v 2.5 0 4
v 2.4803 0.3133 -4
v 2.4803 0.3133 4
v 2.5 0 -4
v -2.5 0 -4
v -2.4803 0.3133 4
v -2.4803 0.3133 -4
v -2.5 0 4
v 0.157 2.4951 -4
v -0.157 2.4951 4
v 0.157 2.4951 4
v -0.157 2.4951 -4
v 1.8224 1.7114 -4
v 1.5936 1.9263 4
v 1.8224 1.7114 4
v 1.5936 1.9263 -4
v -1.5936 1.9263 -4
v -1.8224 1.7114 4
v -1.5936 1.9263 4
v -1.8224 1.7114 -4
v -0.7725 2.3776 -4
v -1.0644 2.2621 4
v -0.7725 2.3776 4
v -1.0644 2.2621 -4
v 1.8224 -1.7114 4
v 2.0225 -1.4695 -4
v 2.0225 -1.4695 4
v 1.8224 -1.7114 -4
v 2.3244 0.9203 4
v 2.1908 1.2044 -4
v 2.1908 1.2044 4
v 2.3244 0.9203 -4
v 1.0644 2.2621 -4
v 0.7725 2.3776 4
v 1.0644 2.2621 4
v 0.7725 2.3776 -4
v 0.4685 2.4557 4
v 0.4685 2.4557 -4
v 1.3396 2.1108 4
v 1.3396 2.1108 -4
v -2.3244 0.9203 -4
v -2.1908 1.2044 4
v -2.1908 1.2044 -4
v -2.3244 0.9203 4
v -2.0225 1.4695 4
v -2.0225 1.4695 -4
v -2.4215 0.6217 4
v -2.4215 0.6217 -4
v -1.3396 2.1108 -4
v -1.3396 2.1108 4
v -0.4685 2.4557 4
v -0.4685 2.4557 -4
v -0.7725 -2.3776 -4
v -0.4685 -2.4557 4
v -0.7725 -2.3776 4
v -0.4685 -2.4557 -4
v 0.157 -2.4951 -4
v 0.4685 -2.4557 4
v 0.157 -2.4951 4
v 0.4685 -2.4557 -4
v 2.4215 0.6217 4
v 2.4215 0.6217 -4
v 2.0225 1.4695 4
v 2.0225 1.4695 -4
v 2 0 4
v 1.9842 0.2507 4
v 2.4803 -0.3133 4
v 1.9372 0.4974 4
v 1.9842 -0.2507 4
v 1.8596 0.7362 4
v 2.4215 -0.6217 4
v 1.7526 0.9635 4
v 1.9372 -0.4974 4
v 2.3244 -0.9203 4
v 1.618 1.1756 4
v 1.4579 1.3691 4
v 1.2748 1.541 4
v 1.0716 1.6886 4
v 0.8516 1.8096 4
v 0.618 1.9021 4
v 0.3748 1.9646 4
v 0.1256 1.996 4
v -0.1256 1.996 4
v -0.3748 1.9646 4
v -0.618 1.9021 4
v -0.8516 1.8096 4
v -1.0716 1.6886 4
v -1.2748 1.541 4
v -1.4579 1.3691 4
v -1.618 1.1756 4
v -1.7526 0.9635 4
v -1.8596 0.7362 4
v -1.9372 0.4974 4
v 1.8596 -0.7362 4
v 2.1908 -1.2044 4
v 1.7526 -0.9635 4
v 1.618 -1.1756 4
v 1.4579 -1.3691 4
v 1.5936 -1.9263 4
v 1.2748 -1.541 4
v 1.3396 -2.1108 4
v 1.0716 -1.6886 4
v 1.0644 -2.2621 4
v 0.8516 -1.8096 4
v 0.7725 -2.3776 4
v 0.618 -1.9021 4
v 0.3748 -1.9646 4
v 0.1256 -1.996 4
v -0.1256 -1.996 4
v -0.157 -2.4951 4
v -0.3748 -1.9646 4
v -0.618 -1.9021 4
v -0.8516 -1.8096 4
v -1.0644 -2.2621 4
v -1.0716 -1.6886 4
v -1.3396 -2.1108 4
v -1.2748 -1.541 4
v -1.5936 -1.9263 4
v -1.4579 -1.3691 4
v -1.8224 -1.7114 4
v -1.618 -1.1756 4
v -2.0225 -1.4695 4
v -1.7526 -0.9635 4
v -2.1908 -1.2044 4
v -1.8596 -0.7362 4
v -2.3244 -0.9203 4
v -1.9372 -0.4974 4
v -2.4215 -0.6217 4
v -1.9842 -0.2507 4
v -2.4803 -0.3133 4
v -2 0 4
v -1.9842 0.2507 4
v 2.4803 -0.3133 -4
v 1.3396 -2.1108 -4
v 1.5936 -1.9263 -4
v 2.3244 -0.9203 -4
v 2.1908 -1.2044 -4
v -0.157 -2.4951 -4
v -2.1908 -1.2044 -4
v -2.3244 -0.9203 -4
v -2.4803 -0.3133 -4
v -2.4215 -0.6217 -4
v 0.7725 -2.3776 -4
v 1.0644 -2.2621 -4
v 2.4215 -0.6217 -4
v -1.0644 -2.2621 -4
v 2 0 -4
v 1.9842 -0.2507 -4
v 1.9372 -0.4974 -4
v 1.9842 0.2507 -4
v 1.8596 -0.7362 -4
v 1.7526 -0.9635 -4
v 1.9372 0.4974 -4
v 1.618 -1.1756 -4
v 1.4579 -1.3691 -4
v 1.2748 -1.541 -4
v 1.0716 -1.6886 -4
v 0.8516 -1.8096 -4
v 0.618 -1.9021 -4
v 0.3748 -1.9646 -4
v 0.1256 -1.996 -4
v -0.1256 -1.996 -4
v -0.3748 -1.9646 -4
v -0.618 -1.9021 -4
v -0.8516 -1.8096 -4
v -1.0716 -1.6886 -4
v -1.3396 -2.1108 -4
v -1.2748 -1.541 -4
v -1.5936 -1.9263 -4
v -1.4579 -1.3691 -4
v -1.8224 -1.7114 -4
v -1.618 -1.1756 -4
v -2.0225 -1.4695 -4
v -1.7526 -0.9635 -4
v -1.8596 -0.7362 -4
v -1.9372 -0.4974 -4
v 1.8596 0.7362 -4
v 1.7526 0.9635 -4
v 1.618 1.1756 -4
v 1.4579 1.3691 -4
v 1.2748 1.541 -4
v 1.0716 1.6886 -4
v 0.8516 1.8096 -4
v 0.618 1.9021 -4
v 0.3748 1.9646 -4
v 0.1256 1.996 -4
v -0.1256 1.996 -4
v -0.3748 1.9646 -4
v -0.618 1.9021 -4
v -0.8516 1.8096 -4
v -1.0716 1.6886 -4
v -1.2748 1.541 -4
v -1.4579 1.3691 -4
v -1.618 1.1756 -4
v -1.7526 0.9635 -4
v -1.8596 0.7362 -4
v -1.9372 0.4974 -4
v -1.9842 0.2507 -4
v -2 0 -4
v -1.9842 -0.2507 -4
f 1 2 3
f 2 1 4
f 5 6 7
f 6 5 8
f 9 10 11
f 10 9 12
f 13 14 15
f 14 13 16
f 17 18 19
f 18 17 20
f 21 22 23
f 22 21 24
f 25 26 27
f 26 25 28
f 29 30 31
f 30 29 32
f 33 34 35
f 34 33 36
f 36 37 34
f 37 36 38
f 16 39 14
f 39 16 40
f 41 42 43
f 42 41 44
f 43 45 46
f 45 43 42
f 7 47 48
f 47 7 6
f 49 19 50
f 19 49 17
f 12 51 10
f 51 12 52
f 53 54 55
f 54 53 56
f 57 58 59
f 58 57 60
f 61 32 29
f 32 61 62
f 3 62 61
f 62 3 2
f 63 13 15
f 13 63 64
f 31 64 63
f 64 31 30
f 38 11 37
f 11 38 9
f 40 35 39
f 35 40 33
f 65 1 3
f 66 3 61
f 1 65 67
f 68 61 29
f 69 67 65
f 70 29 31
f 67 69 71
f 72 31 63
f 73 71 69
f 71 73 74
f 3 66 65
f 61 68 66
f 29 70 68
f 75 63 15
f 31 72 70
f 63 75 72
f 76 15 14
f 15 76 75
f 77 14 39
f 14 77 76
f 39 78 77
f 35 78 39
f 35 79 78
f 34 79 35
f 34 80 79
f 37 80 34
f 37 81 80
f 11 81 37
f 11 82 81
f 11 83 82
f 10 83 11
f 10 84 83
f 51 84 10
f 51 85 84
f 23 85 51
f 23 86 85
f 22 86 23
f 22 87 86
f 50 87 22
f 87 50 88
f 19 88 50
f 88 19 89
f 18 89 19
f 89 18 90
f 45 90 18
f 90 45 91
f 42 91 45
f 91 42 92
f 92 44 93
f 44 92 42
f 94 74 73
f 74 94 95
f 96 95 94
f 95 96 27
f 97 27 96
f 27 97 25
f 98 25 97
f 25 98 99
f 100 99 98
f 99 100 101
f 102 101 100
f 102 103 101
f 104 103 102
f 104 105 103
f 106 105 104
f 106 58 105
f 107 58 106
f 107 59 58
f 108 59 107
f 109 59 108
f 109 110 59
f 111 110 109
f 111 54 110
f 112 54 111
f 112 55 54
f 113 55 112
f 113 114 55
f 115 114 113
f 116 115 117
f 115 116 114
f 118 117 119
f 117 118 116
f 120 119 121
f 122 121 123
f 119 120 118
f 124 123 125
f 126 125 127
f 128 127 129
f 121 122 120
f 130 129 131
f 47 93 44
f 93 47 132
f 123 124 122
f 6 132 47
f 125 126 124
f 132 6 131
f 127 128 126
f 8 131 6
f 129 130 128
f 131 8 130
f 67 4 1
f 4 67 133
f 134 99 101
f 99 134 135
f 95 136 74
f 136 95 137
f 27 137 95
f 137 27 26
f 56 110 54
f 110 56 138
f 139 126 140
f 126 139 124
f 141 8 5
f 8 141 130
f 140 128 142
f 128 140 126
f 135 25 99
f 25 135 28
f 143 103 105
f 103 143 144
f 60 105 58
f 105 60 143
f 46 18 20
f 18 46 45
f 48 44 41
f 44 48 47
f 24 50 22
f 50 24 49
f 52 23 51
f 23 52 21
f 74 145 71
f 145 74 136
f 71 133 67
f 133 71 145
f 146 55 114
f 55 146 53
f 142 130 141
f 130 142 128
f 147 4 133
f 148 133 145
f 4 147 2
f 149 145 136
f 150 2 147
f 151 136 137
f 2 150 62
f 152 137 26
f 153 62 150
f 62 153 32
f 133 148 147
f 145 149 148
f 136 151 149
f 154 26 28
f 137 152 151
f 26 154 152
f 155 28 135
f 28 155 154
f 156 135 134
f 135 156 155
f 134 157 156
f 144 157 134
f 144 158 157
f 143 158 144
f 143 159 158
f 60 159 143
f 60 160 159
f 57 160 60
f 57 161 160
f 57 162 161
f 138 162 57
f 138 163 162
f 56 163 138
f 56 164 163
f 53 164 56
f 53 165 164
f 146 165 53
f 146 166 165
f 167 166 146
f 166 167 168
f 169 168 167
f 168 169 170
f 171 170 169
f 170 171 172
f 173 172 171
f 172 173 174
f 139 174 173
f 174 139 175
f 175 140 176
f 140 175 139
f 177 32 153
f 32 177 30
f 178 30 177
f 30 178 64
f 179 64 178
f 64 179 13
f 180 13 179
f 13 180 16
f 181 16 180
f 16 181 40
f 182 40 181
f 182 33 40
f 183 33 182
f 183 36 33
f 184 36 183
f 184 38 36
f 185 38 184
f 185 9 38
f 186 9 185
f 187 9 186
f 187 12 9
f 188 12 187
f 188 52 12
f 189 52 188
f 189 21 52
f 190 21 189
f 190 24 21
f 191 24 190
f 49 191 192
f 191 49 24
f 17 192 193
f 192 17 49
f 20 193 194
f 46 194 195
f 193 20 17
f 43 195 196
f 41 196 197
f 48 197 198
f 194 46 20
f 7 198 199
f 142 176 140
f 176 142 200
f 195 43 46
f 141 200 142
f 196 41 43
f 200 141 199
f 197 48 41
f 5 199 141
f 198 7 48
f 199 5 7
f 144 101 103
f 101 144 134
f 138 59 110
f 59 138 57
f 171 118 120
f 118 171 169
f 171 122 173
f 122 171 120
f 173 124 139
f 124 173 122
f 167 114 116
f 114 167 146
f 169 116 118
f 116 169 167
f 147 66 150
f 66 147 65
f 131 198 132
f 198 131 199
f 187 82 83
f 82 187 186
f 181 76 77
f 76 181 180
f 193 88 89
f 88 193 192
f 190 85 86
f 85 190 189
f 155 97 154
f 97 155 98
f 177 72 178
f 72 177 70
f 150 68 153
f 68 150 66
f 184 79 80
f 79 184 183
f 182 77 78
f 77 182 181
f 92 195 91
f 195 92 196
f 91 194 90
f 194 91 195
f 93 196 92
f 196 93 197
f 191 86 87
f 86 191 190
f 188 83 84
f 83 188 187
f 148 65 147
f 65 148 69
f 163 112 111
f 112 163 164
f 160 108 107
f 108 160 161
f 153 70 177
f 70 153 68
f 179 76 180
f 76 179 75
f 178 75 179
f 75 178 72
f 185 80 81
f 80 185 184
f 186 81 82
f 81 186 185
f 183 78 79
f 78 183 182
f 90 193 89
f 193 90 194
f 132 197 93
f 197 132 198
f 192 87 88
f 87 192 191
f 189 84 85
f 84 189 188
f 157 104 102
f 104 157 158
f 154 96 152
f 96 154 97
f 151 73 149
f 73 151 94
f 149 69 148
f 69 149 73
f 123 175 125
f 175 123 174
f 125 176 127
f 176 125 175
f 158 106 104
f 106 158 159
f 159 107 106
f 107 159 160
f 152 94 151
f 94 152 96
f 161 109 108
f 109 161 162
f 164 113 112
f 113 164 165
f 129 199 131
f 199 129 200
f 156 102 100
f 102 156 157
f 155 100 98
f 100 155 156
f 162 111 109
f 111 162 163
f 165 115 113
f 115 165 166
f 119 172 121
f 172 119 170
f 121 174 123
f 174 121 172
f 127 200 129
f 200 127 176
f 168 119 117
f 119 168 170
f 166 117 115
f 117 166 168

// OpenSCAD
$fn = 50;


difference() {
	union() {
		translate(v = [0, 0, -4.0000000000]) {
			cylinder(h = 8, r = 2.5000000000);
		}
	}
	union() {
		translate(v = [0, 0, -100.0000000000]) {
			cylinder(h = 200, r = 2.0000000000);
		}
	}
}
